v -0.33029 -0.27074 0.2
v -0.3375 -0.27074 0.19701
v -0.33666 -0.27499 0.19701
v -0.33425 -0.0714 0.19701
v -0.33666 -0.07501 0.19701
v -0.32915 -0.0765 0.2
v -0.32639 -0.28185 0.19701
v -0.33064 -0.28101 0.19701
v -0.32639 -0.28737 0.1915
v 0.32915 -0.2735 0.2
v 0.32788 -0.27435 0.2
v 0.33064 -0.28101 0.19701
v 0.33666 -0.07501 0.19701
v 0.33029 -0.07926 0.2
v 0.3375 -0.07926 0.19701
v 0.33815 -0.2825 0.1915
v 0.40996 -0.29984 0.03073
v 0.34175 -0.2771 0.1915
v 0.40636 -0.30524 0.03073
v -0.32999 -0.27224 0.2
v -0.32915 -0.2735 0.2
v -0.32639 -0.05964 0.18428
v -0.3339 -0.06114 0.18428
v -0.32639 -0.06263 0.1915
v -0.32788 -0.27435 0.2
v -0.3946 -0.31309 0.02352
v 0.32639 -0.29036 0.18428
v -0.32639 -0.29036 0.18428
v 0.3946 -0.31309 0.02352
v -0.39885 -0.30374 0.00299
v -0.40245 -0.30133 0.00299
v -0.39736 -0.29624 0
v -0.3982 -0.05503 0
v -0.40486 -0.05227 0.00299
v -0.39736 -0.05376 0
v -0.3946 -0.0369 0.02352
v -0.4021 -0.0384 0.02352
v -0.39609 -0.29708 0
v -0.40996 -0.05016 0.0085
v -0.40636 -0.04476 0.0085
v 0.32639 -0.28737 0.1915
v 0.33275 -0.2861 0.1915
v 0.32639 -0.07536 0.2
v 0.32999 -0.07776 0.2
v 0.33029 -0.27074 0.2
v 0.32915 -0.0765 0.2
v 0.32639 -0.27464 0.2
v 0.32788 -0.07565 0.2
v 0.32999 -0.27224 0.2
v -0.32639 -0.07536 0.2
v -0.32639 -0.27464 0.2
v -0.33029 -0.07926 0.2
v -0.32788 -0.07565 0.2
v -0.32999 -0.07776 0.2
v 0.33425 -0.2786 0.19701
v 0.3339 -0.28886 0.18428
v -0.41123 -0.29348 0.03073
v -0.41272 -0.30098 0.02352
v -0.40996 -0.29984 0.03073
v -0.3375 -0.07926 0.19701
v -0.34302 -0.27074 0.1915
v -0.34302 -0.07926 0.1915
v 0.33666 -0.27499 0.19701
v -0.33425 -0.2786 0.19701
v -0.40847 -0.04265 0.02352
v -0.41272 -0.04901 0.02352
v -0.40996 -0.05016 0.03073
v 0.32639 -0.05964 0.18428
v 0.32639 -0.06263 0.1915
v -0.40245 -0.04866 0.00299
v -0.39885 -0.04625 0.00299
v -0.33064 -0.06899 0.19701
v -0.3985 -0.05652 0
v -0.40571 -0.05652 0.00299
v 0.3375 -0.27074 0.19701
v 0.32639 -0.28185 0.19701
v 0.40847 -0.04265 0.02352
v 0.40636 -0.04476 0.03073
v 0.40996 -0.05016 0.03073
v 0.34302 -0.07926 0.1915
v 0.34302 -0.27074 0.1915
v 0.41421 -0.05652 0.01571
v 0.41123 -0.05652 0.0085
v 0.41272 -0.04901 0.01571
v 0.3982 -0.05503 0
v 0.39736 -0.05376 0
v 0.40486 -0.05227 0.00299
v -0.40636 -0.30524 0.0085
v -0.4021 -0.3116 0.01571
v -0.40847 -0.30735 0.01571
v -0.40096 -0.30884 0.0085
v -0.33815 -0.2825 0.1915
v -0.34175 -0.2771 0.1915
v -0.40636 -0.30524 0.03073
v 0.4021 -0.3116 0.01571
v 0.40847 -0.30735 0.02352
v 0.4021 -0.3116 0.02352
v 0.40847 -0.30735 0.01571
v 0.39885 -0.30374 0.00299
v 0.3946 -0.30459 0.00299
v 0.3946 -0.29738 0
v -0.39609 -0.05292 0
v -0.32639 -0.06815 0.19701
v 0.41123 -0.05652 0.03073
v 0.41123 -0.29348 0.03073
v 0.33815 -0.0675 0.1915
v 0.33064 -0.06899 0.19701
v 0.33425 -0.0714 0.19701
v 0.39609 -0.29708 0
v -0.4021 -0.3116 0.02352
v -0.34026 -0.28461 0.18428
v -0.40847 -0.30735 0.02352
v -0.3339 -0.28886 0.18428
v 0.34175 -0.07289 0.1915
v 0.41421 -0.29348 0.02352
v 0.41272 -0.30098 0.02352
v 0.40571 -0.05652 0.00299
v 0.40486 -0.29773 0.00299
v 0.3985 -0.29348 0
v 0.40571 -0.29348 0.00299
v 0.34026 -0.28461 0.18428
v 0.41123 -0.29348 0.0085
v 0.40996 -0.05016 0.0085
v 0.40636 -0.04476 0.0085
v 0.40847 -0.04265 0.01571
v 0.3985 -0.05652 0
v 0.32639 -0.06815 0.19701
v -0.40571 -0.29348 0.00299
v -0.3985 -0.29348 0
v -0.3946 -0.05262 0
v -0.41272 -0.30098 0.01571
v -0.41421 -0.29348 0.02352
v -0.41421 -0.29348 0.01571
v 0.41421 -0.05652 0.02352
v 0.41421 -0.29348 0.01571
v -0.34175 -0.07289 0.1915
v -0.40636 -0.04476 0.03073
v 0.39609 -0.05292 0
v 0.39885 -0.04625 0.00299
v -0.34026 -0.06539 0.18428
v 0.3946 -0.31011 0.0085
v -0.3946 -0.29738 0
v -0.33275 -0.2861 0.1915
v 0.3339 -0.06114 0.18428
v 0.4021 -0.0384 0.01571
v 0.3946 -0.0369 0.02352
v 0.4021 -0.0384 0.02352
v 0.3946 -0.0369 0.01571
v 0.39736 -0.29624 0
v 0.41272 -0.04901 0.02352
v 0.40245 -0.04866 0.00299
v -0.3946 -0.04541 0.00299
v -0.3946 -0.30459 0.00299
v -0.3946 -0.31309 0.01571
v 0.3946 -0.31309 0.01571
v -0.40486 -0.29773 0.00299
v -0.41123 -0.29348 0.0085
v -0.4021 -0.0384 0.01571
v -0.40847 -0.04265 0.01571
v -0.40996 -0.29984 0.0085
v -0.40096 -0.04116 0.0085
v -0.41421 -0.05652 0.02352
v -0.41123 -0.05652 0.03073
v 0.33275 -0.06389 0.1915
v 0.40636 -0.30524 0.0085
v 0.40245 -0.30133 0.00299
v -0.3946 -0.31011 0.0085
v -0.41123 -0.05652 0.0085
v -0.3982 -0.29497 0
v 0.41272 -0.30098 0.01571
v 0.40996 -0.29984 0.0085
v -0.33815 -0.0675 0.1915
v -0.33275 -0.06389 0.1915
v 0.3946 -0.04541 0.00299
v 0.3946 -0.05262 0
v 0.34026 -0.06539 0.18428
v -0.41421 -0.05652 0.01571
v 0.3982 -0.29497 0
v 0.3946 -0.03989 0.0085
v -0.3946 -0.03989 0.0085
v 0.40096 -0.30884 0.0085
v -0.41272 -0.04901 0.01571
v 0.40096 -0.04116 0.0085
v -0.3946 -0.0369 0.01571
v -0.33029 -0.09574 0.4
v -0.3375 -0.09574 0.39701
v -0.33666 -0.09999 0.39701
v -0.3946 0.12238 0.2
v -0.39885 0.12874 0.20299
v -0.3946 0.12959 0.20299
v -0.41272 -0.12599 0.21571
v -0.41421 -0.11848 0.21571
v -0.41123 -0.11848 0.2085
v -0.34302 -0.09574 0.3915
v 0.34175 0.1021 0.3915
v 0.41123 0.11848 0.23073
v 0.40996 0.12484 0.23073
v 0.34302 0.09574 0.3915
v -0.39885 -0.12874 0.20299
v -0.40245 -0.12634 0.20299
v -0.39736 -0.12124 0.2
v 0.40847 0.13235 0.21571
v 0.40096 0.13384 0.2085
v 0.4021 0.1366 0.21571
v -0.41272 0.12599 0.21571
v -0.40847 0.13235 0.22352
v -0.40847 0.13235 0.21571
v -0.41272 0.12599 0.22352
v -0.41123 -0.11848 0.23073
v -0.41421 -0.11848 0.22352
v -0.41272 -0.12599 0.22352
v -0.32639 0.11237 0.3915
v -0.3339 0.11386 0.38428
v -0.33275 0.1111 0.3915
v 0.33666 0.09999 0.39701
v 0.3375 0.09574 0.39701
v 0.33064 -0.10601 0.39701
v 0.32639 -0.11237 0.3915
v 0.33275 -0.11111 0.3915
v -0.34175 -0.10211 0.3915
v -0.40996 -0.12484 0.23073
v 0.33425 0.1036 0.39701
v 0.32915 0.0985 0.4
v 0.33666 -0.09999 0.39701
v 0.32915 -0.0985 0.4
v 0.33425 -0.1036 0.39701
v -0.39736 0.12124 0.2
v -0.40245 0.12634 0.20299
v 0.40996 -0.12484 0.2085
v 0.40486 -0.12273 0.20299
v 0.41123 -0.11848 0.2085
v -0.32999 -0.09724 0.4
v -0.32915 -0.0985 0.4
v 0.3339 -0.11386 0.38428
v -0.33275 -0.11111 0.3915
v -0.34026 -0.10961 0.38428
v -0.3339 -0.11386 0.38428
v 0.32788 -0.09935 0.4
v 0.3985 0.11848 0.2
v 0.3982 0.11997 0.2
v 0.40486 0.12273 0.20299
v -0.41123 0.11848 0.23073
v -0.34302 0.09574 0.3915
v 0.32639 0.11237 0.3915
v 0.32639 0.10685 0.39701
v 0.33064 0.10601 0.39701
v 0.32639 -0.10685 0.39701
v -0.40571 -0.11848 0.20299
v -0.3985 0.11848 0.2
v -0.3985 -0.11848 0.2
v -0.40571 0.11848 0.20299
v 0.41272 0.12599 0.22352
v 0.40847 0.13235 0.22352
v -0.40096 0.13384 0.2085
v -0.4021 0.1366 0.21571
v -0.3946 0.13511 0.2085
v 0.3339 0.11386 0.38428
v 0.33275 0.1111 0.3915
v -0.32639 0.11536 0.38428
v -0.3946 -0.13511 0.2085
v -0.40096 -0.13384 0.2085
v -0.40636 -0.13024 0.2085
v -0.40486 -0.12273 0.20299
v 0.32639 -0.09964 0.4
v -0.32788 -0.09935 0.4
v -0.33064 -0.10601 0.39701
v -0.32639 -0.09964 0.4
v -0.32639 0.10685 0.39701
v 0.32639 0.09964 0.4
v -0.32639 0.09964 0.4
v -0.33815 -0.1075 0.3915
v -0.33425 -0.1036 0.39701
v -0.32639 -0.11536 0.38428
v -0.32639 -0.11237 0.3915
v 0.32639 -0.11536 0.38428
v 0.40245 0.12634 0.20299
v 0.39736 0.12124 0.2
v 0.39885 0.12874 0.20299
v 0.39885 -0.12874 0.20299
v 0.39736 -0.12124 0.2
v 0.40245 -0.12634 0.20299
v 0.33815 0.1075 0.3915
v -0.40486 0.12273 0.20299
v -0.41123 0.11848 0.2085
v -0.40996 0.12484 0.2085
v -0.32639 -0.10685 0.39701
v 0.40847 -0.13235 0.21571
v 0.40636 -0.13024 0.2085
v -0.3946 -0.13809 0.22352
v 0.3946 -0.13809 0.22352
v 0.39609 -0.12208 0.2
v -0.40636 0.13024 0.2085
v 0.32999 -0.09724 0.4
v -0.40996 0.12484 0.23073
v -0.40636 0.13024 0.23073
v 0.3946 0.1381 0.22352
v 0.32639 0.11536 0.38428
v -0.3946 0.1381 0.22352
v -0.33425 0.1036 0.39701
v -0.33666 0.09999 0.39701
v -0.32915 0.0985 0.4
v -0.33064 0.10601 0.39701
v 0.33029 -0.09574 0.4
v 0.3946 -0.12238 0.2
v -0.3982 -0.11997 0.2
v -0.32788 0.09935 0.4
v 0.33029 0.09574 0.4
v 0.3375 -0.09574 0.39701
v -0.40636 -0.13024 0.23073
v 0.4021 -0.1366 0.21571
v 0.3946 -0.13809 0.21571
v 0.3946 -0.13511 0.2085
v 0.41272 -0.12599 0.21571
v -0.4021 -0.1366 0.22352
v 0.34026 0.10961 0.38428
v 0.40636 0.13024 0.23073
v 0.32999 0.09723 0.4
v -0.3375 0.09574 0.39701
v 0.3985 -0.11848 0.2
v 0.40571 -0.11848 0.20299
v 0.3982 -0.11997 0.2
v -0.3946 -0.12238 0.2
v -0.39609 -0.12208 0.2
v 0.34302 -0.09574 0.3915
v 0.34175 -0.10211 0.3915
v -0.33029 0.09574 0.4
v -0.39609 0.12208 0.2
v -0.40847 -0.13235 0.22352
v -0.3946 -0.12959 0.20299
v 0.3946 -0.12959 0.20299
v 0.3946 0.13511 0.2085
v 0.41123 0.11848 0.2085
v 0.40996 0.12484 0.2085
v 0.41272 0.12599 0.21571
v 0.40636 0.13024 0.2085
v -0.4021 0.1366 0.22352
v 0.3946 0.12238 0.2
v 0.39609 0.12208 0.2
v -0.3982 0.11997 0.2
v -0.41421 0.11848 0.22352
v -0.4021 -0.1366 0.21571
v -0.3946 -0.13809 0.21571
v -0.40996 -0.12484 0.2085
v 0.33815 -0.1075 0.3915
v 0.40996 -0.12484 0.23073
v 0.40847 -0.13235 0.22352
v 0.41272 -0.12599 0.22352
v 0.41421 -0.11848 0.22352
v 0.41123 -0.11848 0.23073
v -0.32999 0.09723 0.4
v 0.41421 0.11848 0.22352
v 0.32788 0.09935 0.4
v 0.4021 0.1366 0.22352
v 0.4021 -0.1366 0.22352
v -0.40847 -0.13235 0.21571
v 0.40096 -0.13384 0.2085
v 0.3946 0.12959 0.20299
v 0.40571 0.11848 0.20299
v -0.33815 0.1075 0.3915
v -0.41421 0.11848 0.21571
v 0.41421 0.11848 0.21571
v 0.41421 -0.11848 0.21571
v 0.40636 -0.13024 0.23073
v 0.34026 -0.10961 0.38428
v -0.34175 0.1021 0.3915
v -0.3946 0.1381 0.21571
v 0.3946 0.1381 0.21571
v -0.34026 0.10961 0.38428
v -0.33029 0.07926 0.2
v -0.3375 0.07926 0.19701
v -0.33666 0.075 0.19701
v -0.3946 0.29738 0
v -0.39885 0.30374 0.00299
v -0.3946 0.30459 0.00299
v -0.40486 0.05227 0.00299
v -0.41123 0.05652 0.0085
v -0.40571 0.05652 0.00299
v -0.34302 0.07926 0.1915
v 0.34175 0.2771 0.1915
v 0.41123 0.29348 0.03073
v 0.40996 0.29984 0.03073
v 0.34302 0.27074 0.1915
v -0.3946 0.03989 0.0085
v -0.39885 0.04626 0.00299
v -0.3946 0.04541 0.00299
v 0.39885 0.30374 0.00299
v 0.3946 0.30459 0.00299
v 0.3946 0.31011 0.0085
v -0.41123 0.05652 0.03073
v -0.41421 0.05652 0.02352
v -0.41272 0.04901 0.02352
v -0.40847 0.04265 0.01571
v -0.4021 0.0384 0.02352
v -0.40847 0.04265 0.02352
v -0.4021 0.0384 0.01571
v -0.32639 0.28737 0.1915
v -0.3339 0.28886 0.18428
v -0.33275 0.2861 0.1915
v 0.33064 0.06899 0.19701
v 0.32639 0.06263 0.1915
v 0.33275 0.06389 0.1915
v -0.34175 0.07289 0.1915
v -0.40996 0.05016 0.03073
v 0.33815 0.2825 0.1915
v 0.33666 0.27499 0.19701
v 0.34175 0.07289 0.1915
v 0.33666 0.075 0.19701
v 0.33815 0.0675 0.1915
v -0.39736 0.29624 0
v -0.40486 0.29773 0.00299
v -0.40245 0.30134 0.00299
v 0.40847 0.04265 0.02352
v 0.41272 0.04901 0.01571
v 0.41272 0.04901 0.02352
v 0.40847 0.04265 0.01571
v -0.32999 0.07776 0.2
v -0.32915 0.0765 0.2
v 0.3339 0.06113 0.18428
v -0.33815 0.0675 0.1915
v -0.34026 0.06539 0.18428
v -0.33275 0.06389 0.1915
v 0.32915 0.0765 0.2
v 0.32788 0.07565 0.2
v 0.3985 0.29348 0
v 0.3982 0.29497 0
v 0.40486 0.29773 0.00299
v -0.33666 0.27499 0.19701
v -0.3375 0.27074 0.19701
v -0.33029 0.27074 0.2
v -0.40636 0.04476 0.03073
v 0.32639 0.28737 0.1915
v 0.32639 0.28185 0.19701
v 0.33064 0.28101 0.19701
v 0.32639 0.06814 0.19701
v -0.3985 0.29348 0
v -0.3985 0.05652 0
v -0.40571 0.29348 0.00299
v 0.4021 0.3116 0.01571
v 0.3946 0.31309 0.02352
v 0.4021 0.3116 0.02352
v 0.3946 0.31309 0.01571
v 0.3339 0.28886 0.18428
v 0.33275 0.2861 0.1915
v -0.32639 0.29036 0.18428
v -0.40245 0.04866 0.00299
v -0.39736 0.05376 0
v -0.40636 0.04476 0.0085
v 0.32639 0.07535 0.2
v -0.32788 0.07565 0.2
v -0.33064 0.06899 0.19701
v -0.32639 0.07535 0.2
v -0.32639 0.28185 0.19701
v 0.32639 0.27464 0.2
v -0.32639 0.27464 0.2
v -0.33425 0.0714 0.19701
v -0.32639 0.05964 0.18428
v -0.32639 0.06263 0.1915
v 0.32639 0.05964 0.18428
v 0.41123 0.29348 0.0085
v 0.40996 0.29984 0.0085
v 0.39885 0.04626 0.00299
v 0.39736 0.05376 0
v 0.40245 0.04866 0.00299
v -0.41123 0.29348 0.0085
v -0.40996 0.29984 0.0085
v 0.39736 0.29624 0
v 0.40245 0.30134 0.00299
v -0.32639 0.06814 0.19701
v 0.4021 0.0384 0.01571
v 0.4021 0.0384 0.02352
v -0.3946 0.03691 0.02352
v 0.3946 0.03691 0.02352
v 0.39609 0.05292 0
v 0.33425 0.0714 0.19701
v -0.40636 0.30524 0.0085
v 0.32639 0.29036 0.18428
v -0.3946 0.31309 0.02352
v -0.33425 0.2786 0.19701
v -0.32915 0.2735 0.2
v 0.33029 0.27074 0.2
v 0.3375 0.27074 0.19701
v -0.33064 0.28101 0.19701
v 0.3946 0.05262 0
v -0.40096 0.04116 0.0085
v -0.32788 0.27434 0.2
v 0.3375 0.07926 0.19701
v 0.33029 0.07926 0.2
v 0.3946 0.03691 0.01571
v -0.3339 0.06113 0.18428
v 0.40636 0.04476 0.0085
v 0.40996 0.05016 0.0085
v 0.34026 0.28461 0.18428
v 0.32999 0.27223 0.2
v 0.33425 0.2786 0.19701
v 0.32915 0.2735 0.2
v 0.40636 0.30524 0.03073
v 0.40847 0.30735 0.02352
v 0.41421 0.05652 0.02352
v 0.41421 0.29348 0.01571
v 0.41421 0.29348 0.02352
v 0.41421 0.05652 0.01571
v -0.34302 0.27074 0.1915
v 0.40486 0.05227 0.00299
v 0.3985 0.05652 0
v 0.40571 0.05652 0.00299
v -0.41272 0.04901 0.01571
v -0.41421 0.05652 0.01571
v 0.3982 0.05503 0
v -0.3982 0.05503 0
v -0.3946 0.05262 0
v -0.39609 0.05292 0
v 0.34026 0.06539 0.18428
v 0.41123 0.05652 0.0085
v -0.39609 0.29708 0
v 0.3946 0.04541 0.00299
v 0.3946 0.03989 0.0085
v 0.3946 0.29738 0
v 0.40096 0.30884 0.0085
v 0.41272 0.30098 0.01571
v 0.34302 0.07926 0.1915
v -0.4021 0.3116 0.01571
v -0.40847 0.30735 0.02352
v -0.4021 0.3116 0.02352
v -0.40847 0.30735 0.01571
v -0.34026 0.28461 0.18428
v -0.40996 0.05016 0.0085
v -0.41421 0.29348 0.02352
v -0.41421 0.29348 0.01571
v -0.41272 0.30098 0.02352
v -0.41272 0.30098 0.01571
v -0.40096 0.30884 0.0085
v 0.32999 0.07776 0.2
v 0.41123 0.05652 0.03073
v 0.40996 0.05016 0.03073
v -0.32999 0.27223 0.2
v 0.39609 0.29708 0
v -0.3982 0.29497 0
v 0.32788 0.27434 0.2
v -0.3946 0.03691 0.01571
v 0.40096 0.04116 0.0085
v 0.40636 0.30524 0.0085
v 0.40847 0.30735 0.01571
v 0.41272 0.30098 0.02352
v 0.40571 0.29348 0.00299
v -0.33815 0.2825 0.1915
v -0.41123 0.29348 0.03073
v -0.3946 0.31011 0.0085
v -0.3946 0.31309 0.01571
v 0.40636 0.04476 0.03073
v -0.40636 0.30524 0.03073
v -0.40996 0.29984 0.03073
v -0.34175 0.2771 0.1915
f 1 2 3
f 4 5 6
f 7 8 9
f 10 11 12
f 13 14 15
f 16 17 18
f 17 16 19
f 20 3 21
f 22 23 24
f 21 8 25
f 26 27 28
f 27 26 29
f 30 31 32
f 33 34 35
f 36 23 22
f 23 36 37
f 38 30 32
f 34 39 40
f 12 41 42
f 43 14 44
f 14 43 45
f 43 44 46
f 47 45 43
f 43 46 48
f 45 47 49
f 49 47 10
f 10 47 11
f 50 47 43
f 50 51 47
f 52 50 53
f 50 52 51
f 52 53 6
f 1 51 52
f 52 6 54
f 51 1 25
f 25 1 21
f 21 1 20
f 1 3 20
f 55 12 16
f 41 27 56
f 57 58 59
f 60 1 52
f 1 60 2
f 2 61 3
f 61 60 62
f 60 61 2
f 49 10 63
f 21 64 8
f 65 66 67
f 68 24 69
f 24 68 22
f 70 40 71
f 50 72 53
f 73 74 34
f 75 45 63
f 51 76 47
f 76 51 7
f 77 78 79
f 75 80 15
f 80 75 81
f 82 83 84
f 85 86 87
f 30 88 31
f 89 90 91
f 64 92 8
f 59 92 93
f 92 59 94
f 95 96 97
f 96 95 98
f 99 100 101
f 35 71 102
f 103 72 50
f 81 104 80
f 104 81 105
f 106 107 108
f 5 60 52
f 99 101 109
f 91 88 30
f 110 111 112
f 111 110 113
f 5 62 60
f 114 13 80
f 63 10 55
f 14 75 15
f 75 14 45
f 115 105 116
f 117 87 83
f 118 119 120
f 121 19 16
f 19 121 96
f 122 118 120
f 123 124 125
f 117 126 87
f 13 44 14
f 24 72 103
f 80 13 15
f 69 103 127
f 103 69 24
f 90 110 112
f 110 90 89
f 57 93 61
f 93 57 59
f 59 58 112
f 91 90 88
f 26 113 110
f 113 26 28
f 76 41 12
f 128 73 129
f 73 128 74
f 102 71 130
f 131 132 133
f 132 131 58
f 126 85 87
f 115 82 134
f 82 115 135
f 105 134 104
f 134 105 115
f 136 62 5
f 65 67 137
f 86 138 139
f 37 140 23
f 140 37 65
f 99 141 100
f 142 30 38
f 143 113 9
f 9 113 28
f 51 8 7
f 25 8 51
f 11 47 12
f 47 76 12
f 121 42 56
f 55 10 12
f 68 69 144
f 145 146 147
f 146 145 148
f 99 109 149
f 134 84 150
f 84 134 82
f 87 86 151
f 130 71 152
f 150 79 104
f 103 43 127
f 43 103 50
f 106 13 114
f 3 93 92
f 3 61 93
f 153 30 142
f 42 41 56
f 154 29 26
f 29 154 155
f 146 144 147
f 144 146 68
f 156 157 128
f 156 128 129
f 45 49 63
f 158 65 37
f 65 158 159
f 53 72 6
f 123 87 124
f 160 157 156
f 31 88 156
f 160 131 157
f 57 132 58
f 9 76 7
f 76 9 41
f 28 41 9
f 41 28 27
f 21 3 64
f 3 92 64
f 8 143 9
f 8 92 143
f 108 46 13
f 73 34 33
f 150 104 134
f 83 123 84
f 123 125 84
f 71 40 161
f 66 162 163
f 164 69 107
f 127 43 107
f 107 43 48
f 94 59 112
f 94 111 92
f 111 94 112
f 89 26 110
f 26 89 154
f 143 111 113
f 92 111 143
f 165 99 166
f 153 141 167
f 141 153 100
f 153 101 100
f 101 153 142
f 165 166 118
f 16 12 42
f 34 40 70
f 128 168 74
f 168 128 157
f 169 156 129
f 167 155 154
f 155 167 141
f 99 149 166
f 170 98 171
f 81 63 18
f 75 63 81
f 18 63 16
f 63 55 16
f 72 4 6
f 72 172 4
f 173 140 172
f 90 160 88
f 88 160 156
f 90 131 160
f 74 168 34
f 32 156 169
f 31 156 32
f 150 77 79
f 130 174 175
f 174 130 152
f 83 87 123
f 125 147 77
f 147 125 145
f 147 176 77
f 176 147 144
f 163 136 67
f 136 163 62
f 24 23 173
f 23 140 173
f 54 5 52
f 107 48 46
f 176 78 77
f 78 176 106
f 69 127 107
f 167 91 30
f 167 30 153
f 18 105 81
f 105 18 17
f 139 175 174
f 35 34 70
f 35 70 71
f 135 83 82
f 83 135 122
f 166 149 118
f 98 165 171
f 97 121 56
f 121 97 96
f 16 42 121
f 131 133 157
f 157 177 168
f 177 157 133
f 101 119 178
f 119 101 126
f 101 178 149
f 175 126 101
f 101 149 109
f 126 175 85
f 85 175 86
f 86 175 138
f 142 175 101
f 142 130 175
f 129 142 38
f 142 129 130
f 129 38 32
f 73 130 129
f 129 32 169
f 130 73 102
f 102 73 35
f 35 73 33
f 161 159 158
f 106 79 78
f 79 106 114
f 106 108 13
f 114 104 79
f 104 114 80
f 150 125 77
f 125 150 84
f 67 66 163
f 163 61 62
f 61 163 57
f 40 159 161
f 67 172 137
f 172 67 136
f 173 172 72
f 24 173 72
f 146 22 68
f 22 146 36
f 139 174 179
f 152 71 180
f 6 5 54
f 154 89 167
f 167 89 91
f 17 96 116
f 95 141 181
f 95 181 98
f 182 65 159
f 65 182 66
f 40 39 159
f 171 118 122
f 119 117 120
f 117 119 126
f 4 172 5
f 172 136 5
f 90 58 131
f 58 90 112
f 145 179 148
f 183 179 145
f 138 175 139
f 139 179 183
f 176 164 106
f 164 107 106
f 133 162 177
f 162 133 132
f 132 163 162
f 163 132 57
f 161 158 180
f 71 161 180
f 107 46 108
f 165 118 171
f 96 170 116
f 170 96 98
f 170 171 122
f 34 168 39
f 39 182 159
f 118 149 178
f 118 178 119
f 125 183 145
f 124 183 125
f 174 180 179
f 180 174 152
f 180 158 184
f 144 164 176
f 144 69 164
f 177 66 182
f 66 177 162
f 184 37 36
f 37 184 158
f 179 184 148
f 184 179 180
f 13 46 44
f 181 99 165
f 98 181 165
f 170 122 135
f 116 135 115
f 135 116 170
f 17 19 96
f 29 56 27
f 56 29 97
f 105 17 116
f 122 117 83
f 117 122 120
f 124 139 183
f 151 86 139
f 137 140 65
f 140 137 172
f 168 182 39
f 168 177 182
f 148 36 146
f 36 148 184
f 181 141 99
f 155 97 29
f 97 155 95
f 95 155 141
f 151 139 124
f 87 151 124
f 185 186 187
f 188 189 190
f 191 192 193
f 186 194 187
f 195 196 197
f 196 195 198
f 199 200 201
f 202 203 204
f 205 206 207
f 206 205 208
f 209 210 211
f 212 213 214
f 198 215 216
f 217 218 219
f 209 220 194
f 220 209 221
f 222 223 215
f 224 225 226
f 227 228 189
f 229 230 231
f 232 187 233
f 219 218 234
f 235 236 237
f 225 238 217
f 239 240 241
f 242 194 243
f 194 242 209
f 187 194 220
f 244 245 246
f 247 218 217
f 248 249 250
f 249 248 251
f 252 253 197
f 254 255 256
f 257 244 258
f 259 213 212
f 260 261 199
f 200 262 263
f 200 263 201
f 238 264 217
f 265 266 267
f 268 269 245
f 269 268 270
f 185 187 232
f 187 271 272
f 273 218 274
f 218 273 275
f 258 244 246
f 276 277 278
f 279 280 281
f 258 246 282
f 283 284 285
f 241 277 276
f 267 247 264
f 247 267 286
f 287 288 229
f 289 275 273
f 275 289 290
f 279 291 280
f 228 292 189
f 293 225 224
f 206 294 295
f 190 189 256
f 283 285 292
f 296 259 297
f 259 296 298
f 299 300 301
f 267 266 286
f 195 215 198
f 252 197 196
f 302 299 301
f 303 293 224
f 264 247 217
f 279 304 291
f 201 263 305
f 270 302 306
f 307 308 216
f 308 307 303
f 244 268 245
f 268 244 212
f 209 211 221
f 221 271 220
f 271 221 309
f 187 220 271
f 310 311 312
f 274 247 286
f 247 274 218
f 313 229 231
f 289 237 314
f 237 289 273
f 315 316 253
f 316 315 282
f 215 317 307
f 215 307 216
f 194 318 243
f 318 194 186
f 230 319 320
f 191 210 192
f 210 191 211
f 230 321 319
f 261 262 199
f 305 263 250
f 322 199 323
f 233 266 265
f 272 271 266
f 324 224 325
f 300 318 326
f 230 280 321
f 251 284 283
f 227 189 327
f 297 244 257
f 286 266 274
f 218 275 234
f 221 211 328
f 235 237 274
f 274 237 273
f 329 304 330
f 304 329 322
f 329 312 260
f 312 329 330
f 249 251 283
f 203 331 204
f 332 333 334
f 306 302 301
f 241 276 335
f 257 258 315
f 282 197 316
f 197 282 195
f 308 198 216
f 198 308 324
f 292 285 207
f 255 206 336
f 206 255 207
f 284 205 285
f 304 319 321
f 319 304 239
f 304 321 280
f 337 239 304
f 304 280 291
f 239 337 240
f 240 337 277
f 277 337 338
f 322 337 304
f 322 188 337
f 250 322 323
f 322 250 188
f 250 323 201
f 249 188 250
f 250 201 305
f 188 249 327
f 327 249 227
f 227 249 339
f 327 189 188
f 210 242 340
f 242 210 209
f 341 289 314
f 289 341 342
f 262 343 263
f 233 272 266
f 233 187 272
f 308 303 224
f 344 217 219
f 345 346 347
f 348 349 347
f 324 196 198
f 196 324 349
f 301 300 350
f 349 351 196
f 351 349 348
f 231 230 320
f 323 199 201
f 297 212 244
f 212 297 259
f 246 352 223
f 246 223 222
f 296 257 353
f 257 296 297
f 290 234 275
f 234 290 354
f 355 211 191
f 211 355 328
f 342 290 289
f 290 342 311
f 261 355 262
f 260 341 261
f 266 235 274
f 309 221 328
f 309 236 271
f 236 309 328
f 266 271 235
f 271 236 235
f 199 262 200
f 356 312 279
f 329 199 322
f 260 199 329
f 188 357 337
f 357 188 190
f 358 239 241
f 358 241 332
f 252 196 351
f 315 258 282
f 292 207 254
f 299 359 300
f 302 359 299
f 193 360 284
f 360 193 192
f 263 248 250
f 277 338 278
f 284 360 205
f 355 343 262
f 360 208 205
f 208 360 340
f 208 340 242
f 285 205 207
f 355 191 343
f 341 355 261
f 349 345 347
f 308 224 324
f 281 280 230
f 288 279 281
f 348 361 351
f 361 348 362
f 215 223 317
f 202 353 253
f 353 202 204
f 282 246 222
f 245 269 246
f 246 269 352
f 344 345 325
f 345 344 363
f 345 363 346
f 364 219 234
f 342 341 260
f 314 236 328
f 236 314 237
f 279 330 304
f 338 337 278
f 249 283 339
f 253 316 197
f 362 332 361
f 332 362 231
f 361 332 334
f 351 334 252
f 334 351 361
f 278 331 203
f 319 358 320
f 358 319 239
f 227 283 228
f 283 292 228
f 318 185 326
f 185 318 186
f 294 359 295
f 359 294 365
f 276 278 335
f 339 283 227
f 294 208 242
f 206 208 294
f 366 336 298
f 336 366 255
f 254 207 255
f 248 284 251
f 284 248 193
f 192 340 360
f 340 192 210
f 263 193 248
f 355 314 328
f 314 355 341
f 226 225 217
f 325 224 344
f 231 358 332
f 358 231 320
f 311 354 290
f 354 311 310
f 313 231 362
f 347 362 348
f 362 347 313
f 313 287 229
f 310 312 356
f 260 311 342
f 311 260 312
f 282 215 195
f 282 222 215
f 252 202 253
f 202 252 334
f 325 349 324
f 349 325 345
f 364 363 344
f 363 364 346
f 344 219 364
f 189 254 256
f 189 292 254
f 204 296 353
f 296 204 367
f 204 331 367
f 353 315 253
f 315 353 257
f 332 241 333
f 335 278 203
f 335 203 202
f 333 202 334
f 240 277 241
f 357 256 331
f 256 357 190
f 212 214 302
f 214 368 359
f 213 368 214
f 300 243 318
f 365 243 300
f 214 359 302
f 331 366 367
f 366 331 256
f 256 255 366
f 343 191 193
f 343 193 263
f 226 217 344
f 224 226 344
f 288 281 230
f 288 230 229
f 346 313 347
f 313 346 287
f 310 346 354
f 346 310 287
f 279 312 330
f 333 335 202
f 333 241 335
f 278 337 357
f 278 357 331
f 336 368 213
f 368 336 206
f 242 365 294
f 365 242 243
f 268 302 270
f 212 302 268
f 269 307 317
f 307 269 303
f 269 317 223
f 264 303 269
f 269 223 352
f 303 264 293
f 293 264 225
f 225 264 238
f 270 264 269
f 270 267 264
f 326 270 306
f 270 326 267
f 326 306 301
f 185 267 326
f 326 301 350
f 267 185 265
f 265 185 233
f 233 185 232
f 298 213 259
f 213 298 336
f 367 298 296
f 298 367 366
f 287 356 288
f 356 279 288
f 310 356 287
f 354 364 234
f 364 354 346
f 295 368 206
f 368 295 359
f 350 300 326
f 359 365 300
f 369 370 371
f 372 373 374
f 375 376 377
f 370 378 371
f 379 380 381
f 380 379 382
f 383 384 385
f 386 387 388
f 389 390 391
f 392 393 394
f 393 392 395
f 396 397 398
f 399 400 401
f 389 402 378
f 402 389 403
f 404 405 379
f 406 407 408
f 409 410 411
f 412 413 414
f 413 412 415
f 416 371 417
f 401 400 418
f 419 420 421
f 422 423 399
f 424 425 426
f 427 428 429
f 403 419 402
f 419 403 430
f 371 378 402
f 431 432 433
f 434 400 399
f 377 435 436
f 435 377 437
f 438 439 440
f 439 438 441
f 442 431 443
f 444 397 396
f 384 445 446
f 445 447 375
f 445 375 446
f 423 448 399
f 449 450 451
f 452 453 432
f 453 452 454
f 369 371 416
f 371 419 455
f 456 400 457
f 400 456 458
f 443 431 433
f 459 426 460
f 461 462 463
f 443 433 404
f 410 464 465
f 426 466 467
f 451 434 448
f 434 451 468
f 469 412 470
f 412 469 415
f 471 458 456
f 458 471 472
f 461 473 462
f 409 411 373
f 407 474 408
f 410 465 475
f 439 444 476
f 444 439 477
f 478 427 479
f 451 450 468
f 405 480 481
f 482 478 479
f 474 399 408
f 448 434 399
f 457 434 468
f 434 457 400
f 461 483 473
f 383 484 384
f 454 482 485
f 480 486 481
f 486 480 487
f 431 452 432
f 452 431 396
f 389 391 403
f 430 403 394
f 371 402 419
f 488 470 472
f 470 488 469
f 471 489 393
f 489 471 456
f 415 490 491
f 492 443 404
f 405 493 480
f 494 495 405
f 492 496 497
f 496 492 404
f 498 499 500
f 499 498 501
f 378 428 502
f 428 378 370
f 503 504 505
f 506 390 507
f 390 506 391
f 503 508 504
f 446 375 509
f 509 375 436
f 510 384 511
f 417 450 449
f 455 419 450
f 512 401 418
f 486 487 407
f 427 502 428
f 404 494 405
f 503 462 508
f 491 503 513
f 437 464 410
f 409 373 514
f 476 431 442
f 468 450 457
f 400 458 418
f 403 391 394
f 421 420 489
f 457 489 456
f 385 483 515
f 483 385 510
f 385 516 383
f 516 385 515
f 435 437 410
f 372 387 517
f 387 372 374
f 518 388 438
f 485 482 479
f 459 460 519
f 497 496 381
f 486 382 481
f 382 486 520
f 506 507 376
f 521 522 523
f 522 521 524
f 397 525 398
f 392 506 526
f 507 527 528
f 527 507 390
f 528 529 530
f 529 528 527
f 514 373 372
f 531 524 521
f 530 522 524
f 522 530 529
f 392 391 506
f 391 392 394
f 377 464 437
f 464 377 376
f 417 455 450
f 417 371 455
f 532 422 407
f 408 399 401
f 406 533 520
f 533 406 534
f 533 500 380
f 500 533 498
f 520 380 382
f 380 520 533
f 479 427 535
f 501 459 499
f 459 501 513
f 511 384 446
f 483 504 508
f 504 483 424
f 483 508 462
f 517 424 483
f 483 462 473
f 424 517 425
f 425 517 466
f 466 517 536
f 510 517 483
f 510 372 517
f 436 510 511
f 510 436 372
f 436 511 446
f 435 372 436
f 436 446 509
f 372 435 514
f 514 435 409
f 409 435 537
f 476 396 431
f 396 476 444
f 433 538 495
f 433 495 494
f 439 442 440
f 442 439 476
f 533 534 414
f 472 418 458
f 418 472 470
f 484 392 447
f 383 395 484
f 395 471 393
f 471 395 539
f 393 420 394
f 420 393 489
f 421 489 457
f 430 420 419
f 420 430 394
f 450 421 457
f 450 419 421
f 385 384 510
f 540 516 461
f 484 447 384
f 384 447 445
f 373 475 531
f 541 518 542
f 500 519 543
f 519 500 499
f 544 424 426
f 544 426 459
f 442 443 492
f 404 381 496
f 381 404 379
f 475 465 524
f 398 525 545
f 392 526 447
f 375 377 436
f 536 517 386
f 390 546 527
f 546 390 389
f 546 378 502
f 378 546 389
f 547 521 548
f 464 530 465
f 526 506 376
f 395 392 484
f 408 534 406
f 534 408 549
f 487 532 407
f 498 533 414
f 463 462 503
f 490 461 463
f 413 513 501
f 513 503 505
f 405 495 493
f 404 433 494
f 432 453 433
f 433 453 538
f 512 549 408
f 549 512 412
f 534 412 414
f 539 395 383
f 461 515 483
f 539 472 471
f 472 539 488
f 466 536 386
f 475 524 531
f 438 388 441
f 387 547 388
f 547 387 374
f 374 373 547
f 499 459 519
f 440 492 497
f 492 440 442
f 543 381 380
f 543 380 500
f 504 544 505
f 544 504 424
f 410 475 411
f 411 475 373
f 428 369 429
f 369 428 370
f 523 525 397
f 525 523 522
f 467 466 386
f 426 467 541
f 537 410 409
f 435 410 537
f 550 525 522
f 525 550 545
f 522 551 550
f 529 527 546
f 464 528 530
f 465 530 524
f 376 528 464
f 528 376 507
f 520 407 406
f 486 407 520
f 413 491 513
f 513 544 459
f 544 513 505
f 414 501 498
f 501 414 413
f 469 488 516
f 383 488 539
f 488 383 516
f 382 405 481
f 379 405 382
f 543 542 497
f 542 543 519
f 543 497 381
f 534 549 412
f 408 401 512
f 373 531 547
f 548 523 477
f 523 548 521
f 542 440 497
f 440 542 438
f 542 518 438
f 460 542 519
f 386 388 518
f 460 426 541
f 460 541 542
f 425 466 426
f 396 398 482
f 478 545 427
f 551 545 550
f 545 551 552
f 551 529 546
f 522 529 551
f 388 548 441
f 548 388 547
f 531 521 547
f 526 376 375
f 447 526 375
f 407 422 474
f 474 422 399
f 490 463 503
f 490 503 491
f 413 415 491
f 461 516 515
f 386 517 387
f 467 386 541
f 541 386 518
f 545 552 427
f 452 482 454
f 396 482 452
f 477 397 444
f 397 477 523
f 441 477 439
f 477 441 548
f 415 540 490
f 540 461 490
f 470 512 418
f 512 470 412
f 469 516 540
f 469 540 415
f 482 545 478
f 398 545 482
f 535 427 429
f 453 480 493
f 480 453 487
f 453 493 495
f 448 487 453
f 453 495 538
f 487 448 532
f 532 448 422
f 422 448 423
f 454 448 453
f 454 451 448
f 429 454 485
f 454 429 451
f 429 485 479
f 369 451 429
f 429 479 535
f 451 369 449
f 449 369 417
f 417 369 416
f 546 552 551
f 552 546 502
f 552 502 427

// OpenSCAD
// file: lib.scad
function x(v) = v[0];
function y(v) = v[1];
function z(v) = v[2];
function add(v1,v2) = [ for (i = [ 0 : len(v1)-1 ]) v1[i] + v2[i] ];
function xv(d) = [d,0,0];
function yv(d) = [0,d,0];
function zv(d) = [0,0,d];

module box(v) { cube(size=v, center=true); }
module cyl(r1,r2,h) { cylinder(r1=r1, r2=r2, h=h, center=true); }

function grow(n,v) = [x(v)+n*2, y(v)+n*2, z(v)+n*2];

module rbox(v, radius=1) {
	cx = x(v)/2-radius;
	cy = y(v)/2-radius;
	cz = z(v)/2-radius;

	hull() {
		translate([cx,cy,cz]) sphere(r=radius);
		translate([cx,cy,-cz]) sphere(r=radius);
		translate([cx,-cy,cz]) sphere(r=radius);
		translate([cx,-cy,-cz]) sphere(r=radius);
		translate([-cx,cy,cz]) sphere(r=radius);
		translate([-cx,cy,-cz]) sphere(r=radius);
		translate([-cx,-cy,cz]) sphere(r=radius);
		translate([-cx,-cy,-cz]) sphere(r=radius);
	}
}

module fillet(r=1) {
  minkowski() {
    difference() {
      children();
      minkowski() {
        difference() {
          minkowski() {
            children();
            sphere(r=r);
          }
          children();
        }
        sphere(r=r);
      }
    }
    sphere(r=r);
  }
}
// main file
use <lib.scad>

s=0.2;

module ingot() {
	fillet(0.02, $fn=16) scale([s,s,s]) scale([3,1,1]) rotate([0,0,45]) cyl(1, 0.8, 1, $fn=4);
}

translate([0,-0.175,0.1]) ingot();
translate([0,0,0.3]) ingot();
translate([0,0.175,0.1]) ingot();
